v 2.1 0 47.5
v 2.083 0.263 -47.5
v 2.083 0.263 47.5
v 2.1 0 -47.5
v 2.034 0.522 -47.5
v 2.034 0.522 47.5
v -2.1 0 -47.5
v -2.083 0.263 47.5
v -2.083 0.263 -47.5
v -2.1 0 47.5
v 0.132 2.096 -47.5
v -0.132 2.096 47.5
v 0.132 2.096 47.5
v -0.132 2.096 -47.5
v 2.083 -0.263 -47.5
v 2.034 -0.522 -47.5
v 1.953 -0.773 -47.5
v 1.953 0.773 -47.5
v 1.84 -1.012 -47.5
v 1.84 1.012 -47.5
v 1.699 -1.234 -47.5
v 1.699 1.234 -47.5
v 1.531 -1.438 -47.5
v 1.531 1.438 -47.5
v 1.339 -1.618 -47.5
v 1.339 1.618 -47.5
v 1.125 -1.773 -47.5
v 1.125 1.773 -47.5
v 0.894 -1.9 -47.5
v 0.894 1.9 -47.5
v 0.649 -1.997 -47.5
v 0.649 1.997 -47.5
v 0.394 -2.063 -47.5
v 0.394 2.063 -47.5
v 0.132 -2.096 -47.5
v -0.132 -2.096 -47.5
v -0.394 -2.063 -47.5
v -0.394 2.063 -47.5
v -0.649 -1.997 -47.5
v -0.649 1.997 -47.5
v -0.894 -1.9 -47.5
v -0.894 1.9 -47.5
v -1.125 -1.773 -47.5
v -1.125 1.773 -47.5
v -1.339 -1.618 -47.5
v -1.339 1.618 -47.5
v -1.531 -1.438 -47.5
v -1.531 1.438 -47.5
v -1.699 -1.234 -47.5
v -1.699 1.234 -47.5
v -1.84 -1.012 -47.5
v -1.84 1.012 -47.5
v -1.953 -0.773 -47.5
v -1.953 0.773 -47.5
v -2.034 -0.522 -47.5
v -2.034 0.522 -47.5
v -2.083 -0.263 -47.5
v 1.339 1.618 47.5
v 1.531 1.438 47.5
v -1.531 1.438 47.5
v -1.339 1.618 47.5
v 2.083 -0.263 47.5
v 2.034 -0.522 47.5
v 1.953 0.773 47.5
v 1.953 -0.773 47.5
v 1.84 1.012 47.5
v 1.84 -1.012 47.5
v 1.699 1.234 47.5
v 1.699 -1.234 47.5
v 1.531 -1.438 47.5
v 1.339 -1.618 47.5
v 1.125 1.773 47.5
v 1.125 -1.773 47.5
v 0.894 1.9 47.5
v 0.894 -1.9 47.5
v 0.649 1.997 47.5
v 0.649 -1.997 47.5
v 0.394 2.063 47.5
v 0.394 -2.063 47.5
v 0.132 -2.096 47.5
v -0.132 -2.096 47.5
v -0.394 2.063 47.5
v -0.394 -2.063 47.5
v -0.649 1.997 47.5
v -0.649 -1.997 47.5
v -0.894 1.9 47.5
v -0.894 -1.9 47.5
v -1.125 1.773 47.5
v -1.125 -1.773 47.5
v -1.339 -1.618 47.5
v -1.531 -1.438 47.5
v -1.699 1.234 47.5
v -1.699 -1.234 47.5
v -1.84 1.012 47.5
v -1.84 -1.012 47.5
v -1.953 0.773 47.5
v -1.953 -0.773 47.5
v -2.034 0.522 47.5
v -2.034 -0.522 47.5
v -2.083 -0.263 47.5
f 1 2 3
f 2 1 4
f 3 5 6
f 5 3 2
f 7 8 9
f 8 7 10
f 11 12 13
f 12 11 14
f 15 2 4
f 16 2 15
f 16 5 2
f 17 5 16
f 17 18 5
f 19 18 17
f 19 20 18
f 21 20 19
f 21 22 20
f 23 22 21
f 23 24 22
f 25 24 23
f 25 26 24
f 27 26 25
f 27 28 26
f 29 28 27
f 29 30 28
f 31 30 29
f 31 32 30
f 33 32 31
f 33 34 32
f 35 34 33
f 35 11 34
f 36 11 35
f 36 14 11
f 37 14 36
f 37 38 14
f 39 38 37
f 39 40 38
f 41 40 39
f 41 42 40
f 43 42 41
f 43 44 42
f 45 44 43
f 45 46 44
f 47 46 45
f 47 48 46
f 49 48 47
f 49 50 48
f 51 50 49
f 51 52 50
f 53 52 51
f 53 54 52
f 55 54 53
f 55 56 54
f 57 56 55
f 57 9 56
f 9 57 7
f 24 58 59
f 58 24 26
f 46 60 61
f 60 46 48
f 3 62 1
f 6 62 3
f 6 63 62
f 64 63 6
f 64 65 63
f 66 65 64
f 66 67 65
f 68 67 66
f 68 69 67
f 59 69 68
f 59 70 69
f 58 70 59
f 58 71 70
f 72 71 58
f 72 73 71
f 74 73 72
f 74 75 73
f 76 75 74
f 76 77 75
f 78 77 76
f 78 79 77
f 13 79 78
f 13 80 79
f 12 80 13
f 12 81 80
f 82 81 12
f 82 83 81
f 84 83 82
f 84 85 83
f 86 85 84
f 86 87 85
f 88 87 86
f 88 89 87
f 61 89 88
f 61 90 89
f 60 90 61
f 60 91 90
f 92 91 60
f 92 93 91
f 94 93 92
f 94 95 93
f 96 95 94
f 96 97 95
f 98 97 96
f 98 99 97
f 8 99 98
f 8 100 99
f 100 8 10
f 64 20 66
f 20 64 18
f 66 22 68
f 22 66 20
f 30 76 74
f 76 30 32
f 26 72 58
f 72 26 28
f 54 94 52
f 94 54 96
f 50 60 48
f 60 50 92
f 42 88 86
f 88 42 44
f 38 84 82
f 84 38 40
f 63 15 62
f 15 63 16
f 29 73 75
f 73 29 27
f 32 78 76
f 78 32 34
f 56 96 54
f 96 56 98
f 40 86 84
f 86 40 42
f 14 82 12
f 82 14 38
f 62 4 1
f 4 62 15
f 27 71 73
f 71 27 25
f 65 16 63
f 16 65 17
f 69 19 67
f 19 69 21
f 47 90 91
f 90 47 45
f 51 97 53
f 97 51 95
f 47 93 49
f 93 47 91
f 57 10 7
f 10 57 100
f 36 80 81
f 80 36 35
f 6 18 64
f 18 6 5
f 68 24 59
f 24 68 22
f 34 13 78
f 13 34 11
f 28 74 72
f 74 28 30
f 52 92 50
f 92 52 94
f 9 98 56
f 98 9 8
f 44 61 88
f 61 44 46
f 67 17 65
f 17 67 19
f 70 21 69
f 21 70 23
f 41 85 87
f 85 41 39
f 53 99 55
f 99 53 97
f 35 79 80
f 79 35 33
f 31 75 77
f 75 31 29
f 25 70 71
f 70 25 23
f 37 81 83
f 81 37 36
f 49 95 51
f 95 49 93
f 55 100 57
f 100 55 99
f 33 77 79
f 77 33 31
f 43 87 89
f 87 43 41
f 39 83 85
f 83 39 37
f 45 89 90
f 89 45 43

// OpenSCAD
$fn = 50;


difference() {
	union() {
		translate(v = [0, 0, -47.5000000000]) {
			cylinder(h = 95, r = 2.1000000000);
		}
	}
	union() {
		translate(v = [0, 0, -100.0000000000]) {
			cylinder(h = 200, r = 0);
		}
	}
}
